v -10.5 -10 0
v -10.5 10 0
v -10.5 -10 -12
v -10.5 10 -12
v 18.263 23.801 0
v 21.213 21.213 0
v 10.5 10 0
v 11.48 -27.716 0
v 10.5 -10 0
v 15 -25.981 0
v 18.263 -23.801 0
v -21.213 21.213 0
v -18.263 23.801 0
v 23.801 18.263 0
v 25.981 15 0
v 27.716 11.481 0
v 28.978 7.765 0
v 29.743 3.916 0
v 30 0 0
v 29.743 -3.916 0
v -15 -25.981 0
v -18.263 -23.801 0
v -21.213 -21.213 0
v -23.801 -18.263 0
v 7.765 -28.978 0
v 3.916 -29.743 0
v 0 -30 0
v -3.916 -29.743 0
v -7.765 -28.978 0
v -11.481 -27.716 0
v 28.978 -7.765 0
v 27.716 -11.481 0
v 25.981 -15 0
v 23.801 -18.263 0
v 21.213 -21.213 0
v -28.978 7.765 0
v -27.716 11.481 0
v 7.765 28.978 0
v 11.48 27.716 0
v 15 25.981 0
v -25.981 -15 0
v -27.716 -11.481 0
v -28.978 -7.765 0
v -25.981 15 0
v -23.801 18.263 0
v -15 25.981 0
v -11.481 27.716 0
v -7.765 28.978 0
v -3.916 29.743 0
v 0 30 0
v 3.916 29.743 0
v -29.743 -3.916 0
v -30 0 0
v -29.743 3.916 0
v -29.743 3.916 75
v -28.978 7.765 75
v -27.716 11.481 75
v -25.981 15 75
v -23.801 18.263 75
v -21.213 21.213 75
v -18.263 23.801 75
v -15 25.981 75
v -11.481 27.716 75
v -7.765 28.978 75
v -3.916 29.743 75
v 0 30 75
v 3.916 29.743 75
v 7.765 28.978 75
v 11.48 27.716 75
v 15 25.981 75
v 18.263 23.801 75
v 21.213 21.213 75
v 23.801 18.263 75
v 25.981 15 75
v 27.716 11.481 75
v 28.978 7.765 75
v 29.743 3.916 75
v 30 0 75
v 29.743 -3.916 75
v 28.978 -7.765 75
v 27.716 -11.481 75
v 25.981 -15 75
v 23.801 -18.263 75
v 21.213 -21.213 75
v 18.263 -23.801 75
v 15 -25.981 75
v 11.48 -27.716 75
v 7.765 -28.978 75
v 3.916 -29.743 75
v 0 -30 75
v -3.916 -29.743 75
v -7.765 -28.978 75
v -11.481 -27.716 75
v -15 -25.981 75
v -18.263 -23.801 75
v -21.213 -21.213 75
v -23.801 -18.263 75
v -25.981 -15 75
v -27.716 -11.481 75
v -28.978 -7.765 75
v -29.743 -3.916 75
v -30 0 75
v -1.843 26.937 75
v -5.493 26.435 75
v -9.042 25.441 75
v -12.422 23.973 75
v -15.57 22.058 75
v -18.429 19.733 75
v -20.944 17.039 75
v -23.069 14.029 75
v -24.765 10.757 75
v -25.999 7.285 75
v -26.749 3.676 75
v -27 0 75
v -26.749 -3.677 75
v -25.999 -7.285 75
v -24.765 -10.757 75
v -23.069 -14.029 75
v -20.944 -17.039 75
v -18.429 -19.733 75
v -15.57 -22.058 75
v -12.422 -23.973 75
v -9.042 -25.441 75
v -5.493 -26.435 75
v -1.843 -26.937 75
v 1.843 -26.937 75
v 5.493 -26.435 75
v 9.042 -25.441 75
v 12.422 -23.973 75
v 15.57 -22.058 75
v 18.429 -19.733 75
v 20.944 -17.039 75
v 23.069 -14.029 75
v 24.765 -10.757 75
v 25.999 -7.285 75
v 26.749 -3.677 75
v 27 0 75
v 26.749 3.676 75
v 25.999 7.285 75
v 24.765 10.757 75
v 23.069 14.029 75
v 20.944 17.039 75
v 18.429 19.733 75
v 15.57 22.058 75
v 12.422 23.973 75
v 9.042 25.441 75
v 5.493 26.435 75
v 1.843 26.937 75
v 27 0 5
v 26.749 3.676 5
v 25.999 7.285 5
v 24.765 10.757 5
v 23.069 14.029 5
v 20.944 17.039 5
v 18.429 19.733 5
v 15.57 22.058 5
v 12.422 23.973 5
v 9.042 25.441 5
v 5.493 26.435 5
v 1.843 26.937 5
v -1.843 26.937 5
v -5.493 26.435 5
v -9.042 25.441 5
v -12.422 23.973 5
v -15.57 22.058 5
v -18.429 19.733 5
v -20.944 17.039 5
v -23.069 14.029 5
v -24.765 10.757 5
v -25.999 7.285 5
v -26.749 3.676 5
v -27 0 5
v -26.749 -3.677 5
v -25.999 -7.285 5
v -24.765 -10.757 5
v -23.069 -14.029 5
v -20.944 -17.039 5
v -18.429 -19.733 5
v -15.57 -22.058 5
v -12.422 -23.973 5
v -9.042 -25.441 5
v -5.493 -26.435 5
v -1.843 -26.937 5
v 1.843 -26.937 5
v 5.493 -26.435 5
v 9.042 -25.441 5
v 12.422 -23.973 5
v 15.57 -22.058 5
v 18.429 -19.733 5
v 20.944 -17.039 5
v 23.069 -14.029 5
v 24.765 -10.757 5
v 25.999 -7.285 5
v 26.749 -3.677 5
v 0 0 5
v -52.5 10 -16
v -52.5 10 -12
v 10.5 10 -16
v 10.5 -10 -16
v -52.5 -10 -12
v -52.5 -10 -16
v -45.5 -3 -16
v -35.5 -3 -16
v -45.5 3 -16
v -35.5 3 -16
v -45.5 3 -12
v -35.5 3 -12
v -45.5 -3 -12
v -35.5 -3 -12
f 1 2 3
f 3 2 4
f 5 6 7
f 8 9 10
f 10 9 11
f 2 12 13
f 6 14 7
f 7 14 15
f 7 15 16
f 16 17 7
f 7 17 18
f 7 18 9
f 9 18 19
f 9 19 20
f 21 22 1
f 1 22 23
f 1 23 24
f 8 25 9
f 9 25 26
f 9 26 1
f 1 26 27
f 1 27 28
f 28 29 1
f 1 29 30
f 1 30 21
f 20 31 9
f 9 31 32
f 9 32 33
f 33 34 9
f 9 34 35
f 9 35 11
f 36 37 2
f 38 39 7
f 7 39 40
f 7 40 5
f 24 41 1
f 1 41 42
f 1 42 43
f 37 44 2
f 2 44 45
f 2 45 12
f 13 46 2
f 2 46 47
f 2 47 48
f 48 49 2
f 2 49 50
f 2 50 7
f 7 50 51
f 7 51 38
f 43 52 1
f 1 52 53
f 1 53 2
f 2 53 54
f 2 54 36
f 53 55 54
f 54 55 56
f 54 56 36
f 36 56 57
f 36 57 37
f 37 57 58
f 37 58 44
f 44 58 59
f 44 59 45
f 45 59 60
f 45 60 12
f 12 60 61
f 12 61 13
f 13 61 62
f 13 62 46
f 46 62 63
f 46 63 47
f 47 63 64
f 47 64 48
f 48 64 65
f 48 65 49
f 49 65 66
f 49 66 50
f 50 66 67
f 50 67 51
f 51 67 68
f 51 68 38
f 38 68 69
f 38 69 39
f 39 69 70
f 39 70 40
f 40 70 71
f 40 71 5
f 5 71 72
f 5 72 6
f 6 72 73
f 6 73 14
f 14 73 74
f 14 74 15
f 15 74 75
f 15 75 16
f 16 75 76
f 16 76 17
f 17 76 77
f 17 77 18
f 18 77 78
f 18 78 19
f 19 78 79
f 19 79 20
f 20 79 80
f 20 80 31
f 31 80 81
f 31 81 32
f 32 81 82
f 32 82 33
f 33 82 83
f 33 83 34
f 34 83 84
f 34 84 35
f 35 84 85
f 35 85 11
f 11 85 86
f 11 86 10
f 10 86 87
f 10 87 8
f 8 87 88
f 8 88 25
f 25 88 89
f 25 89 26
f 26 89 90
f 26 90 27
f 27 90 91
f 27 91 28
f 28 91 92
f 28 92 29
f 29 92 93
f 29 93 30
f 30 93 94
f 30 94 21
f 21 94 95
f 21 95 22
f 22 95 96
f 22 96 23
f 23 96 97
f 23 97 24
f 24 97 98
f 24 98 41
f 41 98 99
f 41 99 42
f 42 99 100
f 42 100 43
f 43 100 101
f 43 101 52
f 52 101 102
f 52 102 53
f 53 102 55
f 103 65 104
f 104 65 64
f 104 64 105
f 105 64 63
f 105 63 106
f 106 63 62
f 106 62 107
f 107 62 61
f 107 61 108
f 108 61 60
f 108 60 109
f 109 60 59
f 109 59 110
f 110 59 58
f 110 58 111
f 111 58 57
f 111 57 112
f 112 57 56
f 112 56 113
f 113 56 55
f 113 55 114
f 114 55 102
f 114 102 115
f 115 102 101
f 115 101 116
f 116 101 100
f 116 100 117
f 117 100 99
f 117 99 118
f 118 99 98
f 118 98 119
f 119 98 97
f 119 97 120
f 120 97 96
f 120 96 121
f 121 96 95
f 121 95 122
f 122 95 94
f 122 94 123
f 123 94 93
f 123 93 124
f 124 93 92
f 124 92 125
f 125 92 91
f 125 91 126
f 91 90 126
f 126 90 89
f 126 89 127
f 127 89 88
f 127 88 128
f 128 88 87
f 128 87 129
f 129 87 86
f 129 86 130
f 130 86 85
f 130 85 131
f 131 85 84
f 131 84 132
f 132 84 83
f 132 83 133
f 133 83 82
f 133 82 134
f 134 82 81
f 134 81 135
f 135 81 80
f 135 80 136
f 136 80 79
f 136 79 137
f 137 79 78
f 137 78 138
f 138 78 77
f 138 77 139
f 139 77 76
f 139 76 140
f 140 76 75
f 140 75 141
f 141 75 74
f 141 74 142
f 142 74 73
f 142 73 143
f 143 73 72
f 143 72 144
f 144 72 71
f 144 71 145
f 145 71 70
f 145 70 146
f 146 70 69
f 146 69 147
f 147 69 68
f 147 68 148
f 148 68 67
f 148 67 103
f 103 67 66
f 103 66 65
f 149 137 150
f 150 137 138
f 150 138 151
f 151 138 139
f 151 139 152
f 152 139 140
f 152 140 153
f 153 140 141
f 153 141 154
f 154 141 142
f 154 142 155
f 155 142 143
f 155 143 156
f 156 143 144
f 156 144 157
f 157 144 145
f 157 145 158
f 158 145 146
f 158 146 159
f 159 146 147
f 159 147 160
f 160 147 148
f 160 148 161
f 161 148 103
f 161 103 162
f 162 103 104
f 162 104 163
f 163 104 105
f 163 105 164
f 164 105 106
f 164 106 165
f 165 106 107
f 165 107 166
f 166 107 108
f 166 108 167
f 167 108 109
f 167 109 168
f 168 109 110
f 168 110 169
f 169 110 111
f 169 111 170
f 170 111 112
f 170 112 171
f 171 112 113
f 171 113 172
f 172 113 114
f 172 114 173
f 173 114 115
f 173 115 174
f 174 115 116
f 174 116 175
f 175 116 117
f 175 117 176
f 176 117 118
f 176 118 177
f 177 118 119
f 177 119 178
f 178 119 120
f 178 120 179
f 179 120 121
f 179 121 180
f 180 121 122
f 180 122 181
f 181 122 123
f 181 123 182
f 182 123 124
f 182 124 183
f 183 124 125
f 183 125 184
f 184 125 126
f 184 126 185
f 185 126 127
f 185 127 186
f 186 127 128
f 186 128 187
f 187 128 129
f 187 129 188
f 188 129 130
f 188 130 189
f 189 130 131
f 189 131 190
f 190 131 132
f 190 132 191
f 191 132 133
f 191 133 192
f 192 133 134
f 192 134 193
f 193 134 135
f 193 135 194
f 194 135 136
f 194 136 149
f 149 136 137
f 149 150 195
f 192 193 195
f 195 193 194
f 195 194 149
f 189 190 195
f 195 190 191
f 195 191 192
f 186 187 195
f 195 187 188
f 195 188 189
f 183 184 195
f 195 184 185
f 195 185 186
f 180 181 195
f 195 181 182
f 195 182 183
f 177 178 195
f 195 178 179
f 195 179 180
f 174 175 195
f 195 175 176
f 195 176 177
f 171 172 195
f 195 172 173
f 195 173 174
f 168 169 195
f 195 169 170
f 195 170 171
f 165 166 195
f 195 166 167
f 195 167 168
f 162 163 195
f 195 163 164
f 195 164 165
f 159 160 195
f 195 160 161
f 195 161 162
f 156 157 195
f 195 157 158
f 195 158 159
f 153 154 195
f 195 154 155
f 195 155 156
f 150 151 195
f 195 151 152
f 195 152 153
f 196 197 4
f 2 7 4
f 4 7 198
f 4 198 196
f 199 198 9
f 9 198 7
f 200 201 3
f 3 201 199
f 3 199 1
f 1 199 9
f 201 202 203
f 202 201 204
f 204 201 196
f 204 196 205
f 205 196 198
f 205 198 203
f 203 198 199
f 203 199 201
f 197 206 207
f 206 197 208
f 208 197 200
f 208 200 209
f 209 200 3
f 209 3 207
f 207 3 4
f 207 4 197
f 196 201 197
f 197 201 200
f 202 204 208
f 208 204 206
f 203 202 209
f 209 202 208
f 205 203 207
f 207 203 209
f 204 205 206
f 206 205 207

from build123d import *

# Parameters (mm, degrees)
ESQUISSE1_R             = 30
BOSS_EXTRU_1_DEPTH      = 75
ESQUISSE2_R             = 27
ENL_V_MAT_EXTRU_1_DEPTH = 70
ESQUISSE3_W             = 21
ESQUISSE3_H             = 20
BOSS_EXTRU_2_DEPTH      = 16
ESQUISSE4_W             = 4
ESQUISSE4_H             = 20
BOSS_EXTRU_3_DEPTH      = 42
ENL_V_MAT_EXTRU_2_REACH = 111.258
ESQUISSE5_W             = 10
ESQUISSE5_H             = 6


with BuildPart() as part:
    # Esquisse1 → Boss.-Extru.1 (new body)
    with BuildSketch(Plane.XY):
        Circle(ESQUISSE1_R)
    extrude(amount=BOSS_EXTRU_1_DEPTH)

    # Esquisse2 → Enlèv. mat.-Extru.1 (cut)
    with BuildSketch(Plane.XY.offset(75)):
        Circle(ESQUISSE2_R)
    extrude(amount=-ENL_V_MAT_EXTRU_1_DEPTH, mode=Mode.SUBTRACT)

    # Esquisse3 → Boss.-Extru.2 (add)
    with BuildSketch(Plane(origin=(0, 0, 0), x_dir=(-1, 0, 0), z_dir=(0, 0, -1))):
        Rectangle(ESQUISSE3_W, ESQUISSE3_H)
    extrude(amount=BOSS_EXTRU_2_DEPTH)

    # Esquisse4 → Boss.-Extru.3 (add)
    with BuildSketch(Plane.ZY.offset(10.5)):
        with Locations((-14, 0)):
            Rectangle(ESQUISSE4_W, ESQUISSE4_H)
    extrude(amount=BOSS_EXTRU_3_DEPTH)

    # Esquisse5 → Enlèv. mat.-Extru.2 (cut, up to next)
    with BuildSketch(Plane(origin=(0, 0, -16), x_dir=(-1, 0, 0), z_dir=(0, 0, -1)), mode=Mode.PRIVATE) as enl_v_mat_extru_2_sk1:
        with Locations((40.5, 0)):
            Rectangle(ESQUISSE5_W, ESQUISSE5_H)
    enl_v_mat_extru_2_tool1 = extrude(enl_v_mat_extru_2_sk1.sketch, amount=-ENL_V_MAT_EXTRU_2_REACH, mode=Mode.PRIVATE) & part.part
    add(enl_v_mat_extru_2_tool1.solids().sort_by_distance((-40.5, 0, -16))[0], mode=Mode.SUBTRACT)


solid = part.part
